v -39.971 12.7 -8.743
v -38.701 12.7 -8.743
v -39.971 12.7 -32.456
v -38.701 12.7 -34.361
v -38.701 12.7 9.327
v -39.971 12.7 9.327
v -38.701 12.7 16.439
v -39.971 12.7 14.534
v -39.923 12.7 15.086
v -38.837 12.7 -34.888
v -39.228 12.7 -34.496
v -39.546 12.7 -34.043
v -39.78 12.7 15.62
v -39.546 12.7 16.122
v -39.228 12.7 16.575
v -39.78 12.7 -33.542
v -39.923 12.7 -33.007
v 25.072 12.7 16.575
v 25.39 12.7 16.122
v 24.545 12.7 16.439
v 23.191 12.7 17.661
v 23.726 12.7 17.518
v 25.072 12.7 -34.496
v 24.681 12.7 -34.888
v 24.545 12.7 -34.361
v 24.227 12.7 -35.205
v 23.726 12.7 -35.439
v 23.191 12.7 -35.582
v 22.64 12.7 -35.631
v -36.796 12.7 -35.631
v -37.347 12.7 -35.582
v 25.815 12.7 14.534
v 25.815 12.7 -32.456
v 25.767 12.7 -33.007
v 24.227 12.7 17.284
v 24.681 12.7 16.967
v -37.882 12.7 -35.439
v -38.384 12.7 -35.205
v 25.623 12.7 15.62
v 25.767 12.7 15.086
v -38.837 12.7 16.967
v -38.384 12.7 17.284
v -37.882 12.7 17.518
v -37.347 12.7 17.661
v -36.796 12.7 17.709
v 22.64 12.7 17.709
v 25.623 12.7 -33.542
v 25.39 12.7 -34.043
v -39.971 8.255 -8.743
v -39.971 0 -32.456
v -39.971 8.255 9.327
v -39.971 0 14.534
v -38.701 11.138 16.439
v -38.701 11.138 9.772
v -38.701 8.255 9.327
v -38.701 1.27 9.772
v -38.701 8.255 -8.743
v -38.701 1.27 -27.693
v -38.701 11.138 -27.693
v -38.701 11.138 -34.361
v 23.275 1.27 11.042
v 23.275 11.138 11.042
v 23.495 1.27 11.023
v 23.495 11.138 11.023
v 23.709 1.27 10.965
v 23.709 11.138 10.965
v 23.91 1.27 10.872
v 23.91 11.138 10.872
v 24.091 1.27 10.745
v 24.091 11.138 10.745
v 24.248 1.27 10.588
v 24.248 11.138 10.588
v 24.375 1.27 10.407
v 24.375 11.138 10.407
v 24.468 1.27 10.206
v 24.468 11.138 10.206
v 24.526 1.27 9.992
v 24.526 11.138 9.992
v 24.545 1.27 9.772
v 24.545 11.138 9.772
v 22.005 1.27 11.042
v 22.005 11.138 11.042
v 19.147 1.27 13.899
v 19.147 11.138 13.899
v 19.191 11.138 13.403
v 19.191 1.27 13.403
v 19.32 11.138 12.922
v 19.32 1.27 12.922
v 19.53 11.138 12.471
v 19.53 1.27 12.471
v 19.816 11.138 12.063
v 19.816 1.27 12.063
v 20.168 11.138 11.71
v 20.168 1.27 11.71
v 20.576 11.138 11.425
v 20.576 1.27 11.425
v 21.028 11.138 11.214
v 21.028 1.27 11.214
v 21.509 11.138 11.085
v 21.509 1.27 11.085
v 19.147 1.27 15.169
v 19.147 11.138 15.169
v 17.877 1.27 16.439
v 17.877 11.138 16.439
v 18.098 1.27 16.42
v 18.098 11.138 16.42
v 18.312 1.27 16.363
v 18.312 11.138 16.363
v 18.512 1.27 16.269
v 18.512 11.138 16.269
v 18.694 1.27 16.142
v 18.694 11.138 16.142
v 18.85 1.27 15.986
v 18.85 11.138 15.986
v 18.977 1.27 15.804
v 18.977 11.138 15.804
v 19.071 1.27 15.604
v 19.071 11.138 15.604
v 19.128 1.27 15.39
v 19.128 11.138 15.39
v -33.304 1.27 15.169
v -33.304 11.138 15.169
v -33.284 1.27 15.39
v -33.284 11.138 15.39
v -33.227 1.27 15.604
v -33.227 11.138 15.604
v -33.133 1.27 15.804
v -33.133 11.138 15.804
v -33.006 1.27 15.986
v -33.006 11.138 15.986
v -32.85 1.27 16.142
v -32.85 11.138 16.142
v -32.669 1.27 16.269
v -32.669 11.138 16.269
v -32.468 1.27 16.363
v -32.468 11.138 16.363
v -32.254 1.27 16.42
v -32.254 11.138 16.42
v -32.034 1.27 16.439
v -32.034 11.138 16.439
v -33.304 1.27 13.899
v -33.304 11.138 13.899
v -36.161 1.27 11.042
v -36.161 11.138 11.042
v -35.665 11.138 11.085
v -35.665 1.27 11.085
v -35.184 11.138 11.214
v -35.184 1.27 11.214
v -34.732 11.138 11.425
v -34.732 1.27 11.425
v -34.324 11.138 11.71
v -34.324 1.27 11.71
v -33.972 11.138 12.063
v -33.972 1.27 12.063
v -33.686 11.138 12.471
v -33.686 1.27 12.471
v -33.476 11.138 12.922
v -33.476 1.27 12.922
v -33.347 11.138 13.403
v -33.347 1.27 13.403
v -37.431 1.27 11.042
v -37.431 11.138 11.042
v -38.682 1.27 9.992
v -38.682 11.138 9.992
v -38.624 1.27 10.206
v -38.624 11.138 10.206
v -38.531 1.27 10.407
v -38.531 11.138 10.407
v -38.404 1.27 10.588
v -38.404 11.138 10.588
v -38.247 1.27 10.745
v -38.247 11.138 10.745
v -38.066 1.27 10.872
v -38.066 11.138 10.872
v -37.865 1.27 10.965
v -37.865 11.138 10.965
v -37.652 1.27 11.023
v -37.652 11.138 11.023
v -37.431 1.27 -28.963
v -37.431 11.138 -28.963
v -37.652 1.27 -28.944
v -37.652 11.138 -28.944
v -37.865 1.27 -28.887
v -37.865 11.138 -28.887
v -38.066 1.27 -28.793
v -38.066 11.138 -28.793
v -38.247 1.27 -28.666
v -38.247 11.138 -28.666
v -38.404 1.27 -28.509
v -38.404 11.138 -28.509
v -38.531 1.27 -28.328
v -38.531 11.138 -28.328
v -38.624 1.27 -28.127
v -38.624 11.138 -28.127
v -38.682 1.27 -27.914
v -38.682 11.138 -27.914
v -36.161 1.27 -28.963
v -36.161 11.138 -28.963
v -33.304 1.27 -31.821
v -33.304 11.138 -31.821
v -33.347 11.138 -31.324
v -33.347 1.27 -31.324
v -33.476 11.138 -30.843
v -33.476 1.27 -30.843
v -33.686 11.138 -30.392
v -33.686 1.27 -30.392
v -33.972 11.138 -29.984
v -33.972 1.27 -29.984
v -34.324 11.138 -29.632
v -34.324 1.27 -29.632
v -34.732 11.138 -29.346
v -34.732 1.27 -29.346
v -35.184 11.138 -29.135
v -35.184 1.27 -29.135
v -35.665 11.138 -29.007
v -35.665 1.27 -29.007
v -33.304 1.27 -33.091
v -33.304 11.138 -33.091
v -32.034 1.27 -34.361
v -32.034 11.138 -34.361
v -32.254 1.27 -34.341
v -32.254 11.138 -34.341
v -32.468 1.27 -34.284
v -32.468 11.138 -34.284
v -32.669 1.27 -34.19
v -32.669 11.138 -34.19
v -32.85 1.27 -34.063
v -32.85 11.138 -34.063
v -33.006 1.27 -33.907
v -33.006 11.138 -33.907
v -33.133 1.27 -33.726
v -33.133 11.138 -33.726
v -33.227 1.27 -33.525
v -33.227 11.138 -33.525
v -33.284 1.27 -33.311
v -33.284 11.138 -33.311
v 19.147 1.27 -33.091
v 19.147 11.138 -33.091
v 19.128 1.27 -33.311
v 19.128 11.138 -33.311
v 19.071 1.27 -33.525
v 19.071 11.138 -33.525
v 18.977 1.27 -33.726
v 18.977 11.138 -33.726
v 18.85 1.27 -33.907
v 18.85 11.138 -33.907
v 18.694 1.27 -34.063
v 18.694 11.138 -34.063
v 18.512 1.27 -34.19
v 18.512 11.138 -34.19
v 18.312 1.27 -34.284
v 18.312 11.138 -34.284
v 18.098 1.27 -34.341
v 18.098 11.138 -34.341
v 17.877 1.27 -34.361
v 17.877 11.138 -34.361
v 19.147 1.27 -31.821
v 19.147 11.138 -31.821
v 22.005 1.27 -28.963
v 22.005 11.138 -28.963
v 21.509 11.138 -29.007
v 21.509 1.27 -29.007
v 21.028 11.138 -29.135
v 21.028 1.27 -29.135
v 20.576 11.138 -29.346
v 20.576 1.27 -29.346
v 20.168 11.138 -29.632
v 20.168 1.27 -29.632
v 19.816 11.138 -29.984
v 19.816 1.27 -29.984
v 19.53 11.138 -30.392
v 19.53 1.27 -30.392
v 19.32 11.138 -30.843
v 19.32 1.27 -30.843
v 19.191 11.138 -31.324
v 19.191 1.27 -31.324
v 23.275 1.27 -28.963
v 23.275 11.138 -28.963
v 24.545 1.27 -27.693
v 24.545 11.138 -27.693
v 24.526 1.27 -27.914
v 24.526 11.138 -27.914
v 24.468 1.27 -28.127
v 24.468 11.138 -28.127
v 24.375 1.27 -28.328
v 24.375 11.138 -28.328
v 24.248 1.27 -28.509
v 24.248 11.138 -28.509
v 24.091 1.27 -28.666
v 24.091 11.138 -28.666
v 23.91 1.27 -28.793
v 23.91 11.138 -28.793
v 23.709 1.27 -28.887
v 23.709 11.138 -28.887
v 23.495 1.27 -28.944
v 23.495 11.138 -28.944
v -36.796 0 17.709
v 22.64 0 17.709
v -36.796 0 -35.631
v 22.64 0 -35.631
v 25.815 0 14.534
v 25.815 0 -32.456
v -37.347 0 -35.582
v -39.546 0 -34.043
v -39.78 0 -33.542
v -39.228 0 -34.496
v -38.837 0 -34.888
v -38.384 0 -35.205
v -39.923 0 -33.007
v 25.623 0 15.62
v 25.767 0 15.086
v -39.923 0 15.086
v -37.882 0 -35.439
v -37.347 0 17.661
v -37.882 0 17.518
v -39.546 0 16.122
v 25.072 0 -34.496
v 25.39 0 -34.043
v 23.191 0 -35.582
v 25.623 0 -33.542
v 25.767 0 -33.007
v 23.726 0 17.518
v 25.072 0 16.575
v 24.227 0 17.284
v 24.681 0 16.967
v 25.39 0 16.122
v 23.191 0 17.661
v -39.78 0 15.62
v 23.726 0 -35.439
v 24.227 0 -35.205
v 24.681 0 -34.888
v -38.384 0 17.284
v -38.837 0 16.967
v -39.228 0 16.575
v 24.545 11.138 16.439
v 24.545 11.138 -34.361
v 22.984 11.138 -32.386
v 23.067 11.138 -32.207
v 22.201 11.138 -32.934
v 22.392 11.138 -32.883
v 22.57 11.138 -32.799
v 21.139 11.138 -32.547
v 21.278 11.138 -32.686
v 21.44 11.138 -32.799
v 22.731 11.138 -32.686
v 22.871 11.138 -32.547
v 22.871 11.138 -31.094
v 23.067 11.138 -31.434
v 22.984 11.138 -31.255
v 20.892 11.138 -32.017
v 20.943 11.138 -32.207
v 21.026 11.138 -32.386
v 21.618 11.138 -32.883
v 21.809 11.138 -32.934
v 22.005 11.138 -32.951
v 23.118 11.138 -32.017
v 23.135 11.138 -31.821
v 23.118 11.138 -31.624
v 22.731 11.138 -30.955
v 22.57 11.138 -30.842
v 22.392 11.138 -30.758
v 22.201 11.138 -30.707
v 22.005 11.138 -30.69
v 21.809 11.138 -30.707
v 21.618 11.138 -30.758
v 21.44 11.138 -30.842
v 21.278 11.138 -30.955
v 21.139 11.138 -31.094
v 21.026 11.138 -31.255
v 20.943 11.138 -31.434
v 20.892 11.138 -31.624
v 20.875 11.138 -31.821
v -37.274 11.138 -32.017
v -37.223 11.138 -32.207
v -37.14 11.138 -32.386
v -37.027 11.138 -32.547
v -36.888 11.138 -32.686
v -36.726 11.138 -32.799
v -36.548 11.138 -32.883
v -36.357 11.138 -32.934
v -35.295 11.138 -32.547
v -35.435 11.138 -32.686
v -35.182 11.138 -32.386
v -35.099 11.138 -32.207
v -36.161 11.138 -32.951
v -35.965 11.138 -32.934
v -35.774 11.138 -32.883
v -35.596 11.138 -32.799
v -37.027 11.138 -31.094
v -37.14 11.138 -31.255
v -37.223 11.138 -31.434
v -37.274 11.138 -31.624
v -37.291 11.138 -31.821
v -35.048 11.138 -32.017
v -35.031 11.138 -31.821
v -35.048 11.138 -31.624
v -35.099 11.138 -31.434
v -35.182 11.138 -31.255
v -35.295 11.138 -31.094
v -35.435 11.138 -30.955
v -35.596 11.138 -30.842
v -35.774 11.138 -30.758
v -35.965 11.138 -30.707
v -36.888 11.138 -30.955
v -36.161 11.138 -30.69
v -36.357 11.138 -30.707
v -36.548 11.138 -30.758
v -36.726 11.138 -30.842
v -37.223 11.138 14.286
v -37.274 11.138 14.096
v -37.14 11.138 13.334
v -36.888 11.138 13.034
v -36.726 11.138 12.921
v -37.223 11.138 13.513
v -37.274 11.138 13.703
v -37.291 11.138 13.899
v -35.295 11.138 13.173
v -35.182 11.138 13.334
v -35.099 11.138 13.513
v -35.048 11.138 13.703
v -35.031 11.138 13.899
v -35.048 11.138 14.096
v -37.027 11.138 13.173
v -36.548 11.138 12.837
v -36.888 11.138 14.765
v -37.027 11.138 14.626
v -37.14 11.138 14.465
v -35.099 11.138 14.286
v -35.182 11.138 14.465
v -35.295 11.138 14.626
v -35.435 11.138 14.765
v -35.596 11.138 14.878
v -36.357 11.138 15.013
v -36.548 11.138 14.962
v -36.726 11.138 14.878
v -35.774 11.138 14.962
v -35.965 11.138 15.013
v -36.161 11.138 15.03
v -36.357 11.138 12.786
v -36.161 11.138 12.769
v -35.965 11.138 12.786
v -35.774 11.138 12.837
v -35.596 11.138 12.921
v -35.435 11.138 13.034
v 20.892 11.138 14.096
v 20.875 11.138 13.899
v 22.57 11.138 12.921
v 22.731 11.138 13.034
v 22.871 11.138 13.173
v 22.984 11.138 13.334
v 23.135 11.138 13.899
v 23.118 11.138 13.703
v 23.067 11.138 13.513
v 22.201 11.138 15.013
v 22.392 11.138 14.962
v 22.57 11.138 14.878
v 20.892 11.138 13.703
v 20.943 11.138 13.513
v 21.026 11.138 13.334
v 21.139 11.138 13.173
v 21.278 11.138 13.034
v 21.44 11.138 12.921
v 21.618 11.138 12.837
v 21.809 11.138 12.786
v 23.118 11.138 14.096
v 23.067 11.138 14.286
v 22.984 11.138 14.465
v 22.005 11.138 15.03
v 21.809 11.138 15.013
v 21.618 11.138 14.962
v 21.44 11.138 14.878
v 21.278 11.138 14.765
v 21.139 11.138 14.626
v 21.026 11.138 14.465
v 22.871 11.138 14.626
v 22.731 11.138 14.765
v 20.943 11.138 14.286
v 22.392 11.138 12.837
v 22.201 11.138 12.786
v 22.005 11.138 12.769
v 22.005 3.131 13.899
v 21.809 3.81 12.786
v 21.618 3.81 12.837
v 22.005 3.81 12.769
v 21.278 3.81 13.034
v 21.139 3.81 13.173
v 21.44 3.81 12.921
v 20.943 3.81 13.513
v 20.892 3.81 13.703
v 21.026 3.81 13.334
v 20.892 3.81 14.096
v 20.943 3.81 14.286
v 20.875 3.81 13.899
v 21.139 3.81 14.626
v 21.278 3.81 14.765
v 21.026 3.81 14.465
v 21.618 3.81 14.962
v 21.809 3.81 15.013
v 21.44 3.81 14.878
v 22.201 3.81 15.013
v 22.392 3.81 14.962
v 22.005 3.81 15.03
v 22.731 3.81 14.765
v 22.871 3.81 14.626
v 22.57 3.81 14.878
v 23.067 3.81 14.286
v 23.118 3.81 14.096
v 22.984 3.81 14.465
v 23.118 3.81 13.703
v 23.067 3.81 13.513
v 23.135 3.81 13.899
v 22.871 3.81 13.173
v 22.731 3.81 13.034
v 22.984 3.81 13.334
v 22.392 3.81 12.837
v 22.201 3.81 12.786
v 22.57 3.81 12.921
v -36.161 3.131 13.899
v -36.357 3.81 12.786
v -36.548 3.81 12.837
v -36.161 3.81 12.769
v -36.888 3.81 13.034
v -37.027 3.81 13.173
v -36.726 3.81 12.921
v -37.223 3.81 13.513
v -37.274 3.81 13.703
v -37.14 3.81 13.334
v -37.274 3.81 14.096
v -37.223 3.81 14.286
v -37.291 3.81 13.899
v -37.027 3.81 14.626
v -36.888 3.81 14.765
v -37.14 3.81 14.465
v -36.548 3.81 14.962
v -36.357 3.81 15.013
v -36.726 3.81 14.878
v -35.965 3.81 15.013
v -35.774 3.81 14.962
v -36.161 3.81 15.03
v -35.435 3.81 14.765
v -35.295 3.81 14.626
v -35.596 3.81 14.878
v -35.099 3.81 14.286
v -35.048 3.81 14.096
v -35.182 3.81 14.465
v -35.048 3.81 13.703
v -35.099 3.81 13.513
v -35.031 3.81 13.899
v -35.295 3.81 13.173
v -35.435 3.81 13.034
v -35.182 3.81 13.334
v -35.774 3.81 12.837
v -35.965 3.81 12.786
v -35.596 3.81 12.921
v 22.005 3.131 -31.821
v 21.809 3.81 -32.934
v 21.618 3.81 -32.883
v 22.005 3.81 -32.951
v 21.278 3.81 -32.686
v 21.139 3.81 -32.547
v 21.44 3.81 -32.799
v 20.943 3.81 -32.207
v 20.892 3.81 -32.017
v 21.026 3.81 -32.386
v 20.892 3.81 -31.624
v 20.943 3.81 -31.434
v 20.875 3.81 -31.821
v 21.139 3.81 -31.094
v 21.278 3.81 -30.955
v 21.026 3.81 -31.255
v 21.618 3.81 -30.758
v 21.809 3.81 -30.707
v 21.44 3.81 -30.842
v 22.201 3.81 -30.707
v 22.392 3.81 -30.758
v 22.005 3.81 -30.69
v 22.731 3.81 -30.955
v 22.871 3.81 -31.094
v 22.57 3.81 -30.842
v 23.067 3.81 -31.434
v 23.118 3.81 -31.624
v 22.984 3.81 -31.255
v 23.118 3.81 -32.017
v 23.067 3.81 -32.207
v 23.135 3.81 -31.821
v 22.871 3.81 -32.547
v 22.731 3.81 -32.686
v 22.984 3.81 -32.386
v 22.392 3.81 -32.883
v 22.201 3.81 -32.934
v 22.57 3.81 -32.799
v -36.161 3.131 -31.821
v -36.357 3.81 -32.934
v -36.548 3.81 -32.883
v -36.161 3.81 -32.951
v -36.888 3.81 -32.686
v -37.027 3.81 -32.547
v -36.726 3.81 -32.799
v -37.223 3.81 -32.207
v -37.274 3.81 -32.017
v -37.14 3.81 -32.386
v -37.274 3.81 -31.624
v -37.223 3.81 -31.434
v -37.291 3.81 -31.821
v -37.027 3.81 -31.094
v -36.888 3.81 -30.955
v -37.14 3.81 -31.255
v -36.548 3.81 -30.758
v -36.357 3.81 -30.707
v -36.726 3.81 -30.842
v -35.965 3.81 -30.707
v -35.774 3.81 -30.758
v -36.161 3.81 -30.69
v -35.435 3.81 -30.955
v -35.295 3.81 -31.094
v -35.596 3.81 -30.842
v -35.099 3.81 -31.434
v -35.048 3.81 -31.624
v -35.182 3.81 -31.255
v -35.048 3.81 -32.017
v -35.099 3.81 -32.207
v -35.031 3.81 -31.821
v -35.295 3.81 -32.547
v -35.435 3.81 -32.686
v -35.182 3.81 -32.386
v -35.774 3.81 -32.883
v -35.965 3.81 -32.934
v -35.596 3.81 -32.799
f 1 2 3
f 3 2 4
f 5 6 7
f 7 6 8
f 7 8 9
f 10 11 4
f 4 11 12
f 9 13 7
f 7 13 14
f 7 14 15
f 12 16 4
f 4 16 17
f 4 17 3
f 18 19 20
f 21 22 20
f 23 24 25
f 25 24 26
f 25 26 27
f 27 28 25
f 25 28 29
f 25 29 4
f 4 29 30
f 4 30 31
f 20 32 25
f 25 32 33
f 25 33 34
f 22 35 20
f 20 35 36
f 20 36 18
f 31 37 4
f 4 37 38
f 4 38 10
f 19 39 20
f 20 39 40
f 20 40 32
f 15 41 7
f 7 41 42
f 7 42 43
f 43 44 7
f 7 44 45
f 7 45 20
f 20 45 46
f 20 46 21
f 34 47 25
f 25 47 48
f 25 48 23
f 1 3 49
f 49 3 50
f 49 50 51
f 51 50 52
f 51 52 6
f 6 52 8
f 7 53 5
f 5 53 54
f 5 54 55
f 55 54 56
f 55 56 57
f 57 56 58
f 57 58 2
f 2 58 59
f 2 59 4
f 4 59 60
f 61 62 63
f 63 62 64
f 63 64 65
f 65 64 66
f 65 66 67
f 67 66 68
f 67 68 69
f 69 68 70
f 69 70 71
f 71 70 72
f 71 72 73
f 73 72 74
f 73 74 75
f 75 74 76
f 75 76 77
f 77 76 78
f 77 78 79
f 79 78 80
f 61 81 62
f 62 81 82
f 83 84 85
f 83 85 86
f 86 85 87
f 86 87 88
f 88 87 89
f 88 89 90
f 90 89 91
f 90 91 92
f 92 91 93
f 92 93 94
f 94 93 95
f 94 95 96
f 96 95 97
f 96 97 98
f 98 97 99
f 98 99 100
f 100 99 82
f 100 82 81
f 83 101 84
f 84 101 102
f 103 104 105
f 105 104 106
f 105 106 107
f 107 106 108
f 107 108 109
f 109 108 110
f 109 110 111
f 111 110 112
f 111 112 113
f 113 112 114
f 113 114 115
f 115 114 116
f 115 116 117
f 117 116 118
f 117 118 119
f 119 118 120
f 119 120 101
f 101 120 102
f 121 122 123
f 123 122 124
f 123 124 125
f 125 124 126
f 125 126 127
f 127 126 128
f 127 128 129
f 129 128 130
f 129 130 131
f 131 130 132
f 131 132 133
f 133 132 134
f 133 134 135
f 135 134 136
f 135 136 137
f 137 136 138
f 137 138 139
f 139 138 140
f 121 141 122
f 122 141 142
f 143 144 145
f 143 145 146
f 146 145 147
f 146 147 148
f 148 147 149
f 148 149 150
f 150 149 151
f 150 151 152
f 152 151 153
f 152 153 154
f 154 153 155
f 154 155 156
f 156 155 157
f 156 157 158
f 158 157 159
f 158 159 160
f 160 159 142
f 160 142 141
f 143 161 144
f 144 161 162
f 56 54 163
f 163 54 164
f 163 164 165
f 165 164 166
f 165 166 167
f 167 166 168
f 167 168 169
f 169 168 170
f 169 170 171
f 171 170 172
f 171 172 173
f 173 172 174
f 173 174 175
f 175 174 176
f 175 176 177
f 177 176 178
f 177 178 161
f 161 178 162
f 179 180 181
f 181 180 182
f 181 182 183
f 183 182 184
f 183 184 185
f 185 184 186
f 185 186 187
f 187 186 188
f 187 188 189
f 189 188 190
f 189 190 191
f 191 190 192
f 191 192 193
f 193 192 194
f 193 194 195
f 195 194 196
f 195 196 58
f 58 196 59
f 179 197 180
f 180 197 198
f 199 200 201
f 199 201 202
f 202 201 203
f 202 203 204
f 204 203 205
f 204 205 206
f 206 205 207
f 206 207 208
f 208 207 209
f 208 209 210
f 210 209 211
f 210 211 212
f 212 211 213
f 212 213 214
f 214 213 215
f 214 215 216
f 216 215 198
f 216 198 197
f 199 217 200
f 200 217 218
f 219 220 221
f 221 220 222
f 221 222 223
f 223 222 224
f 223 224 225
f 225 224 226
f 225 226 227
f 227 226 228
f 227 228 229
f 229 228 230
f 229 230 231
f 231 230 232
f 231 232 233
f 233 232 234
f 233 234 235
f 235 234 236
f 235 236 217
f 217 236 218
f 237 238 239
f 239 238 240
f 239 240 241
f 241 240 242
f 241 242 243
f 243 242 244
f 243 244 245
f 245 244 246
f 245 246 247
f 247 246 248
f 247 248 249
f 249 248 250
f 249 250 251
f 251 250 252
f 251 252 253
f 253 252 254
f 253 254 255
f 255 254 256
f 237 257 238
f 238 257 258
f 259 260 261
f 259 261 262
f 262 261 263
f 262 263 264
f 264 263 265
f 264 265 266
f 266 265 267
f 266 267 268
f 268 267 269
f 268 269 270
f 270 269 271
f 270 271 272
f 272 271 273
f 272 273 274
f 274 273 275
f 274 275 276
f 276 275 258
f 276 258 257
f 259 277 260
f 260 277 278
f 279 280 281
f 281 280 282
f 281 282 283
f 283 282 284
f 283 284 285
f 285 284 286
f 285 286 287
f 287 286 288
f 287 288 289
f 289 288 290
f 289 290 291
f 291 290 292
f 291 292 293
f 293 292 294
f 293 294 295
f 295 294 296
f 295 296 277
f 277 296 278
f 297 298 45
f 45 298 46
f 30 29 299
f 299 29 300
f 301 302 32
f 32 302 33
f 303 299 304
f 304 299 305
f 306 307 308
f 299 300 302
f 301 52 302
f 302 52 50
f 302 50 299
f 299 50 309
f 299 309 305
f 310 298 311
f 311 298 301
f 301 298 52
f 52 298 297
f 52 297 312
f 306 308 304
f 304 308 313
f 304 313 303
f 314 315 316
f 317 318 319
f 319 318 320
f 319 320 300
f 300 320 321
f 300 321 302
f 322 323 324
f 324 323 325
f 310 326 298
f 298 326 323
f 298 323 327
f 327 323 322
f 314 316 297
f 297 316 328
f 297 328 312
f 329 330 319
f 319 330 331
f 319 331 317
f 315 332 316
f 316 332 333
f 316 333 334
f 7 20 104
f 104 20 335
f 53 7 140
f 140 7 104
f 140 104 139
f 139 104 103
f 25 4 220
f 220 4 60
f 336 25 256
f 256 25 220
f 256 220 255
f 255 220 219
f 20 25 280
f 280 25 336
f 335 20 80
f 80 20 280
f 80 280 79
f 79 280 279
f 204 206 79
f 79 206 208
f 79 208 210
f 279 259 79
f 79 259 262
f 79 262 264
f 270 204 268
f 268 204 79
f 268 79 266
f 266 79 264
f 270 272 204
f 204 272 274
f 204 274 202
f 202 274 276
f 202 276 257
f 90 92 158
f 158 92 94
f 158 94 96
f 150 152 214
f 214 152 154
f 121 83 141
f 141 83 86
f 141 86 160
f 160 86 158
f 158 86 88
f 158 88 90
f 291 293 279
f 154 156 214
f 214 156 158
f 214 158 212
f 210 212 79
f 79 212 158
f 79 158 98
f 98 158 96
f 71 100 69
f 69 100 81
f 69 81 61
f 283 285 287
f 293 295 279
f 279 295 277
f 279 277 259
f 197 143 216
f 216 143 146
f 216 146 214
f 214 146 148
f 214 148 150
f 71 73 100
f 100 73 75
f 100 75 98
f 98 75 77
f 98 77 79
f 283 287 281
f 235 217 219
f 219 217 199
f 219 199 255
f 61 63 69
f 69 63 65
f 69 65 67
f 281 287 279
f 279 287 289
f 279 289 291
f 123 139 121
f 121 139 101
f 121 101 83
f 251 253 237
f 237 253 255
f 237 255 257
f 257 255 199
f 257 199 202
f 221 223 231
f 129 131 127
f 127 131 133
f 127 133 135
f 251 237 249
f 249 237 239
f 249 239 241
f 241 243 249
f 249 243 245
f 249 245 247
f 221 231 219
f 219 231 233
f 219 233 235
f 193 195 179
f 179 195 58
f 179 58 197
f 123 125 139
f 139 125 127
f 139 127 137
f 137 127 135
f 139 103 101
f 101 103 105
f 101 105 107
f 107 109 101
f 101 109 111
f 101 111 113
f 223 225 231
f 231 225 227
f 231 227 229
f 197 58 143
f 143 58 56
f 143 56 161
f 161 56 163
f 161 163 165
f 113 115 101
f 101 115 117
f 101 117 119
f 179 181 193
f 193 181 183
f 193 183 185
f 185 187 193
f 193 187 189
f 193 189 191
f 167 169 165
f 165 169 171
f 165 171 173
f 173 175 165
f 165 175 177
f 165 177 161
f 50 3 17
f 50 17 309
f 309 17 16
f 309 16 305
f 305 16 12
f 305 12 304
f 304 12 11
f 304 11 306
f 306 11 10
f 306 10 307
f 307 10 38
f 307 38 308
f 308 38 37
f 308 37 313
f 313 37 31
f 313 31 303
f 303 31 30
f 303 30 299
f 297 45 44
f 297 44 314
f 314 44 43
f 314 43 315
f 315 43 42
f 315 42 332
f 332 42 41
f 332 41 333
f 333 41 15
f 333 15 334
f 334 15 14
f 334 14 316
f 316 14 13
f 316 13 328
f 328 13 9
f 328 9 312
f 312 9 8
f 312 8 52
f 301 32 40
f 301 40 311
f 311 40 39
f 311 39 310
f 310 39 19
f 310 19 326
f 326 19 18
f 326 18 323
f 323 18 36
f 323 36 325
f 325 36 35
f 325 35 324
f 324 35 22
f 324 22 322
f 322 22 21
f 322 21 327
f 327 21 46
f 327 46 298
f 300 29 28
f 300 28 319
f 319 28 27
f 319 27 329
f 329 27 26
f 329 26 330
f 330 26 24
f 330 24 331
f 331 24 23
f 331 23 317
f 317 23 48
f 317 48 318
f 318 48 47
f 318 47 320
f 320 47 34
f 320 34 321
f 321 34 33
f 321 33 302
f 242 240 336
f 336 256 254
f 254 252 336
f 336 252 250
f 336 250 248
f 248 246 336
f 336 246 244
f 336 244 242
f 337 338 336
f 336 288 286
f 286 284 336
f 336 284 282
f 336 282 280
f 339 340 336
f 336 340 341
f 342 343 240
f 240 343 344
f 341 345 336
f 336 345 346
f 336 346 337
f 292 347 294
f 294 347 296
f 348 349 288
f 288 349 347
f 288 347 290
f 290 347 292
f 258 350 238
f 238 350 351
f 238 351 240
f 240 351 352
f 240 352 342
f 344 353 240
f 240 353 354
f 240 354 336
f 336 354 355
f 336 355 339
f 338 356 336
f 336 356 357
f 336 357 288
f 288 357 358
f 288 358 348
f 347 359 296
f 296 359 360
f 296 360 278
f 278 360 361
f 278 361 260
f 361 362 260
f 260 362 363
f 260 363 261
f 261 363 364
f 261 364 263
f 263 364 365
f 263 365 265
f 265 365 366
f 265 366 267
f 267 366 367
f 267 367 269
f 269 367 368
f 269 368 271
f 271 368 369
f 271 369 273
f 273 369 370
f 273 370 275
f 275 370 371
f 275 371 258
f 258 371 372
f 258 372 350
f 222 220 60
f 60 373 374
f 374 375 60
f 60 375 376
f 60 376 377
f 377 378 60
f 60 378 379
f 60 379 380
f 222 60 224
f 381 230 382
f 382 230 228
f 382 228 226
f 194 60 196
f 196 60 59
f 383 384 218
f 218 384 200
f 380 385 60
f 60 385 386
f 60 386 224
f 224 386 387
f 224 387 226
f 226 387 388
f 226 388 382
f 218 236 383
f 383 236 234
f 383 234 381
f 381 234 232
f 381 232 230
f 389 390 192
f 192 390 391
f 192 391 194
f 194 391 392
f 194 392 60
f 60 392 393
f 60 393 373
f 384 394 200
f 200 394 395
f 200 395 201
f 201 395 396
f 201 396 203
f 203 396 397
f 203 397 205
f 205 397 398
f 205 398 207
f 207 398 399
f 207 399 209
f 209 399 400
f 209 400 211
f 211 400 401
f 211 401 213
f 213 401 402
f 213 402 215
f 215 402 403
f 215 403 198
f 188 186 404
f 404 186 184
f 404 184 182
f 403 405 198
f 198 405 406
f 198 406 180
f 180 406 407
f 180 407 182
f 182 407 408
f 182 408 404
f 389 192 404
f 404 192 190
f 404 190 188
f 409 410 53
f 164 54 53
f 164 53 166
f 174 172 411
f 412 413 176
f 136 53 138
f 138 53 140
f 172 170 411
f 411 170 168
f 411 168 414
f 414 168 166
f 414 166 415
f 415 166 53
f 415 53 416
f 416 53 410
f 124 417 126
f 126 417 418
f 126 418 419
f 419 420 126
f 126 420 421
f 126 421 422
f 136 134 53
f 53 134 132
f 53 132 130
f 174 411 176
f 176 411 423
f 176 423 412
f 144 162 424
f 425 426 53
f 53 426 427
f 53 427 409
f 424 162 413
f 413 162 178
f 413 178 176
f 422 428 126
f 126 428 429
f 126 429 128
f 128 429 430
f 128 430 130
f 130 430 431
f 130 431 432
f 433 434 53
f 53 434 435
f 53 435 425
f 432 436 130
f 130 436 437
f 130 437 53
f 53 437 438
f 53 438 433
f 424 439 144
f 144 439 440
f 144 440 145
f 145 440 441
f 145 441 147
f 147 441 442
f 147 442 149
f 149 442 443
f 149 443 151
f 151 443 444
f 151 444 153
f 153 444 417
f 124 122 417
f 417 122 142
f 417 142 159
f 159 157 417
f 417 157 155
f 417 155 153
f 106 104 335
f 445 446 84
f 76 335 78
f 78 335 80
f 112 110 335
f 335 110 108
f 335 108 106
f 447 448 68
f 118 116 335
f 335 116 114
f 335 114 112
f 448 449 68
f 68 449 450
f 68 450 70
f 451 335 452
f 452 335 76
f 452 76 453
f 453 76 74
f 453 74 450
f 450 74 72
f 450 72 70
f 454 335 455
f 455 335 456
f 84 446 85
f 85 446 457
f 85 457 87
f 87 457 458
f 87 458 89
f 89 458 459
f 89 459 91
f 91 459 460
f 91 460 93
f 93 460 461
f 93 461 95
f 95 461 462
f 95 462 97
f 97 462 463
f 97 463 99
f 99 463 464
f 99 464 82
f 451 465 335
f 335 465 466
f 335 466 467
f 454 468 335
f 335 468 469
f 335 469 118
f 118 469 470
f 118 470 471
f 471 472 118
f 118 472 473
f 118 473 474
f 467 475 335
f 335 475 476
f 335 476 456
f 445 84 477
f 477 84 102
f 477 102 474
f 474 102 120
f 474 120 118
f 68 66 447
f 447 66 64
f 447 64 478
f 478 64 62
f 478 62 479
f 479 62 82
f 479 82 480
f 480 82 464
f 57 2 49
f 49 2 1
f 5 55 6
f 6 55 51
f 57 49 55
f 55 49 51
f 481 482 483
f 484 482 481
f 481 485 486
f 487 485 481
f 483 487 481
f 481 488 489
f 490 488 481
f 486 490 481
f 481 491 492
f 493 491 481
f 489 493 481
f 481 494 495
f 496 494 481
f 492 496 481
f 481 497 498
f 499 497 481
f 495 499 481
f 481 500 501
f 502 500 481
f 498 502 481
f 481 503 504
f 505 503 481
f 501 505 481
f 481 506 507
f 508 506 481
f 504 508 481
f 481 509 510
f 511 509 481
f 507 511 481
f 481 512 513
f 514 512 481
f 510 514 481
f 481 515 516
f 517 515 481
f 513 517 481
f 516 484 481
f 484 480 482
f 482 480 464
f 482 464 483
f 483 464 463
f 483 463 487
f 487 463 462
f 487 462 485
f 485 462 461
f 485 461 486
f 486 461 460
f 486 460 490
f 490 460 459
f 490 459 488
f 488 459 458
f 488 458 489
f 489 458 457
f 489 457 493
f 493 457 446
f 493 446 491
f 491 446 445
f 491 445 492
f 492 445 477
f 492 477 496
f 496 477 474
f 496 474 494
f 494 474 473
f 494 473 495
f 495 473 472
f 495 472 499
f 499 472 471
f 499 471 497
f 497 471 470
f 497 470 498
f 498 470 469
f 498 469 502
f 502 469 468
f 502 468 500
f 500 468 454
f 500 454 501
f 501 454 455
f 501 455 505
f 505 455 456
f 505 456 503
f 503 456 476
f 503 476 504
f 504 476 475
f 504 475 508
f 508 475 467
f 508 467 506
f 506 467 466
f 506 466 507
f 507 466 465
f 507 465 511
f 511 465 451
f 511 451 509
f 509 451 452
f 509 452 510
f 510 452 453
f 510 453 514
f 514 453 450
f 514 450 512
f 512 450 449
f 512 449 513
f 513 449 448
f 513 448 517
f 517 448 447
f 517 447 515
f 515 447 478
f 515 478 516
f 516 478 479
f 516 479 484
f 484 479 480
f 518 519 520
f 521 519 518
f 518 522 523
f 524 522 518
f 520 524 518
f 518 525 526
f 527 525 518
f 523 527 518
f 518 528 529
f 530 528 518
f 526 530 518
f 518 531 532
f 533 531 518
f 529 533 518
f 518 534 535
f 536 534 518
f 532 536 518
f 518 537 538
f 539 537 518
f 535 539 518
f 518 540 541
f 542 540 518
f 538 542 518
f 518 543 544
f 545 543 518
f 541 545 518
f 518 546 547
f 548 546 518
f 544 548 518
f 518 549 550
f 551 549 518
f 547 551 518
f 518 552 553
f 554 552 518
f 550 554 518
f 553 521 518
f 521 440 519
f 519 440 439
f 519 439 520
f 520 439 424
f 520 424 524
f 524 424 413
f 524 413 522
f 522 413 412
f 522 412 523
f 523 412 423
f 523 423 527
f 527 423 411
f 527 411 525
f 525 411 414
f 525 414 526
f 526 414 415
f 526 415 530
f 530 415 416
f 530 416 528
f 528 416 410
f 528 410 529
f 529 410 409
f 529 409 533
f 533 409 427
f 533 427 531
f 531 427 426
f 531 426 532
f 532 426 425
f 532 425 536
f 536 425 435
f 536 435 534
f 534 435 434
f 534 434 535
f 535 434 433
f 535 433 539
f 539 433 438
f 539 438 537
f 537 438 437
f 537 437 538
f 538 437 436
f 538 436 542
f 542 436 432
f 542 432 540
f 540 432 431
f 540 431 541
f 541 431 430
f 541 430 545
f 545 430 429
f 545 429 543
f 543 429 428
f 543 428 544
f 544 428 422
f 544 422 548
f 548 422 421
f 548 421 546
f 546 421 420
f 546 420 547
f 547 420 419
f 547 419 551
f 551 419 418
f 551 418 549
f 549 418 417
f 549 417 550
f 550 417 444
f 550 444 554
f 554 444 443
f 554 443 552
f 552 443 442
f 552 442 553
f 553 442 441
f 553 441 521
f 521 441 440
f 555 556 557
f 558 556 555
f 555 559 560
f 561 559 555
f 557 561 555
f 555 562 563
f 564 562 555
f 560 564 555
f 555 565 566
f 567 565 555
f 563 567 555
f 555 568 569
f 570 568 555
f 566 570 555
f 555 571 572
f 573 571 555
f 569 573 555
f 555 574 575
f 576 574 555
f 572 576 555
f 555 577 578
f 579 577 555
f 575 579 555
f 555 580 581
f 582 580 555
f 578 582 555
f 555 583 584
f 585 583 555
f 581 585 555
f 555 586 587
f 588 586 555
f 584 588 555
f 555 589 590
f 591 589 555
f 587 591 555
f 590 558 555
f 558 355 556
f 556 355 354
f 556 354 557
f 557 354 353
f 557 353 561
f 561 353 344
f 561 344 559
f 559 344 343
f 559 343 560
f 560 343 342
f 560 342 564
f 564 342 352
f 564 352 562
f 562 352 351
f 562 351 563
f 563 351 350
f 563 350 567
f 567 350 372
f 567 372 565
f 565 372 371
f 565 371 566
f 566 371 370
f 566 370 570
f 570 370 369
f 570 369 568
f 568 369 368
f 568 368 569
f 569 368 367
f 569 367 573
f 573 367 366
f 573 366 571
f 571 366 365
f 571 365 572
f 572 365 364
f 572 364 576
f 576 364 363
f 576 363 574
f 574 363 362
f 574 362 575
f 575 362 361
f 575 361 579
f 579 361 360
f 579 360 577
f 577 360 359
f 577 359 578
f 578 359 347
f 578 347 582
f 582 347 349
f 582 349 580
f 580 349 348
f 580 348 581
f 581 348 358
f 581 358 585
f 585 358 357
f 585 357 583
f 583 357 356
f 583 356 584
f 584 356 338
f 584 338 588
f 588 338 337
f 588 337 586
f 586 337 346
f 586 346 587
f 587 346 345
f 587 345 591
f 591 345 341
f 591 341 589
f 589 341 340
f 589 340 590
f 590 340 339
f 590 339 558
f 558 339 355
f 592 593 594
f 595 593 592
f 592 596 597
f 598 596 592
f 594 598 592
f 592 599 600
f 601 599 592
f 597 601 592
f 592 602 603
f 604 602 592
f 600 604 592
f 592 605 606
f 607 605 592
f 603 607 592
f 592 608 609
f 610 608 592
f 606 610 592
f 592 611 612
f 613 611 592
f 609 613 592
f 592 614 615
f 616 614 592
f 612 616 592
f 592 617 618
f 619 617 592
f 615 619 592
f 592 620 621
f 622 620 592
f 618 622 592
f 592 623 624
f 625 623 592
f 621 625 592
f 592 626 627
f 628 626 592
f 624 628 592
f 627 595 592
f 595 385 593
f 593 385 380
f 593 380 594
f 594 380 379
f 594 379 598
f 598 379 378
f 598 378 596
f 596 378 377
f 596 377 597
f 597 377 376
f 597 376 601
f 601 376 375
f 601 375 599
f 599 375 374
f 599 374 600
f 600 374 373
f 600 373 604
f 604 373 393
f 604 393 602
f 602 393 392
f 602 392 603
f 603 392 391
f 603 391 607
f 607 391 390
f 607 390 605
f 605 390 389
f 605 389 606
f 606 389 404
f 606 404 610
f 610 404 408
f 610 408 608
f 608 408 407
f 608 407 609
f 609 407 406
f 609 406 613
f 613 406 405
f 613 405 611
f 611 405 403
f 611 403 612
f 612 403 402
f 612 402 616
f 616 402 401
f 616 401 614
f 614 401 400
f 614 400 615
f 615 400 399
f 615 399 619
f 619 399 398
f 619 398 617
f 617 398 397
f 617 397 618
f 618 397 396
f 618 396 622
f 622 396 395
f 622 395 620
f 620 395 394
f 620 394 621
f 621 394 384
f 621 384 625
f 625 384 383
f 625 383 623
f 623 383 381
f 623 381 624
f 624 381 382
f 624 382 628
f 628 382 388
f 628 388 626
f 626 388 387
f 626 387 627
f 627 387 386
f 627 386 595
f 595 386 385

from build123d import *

# Parameters (mm, degrees)
SKETCH5_W             = 65.786
SKETCH5_H             = 53.34
BOSS_EXTRUDE1_DEPTH   = 12.7
CUT_EXTRUDE1_DEPTH    = 11.43
FILLET1_R             = 3.175
SKETCH8_W             = 63.246
SKETCH8_H             = 50.8
CUT_EXTRUDE2_DEPTH    = 1.5621
SKETCH9_W             = 15.301638829
SKETCH9_H             = 18.07026672
CUT_EXTRUDE3_DEPTH    = 4.445
BODY_MOVE_COPY1_ANGLE = 180


with BuildPart() as part:
    # Sketch5 → Boss-Extrude1 (new body)
    with BuildSketch(Plane(origin=(0, 0, 0), x_dir=(1, 0, 0), z_dir=(0, 1, 0))):
        with Locations((-7.078072202, 8.960606498)):
            Rectangle(SKETCH5_W, SKETCH5_H)
    extrude(amount=BOSS_EXTRUDE1_DEPTH)

    # Sketch7 → Cut-Extrude1 (cut)
    with BuildSketch(Plane.XZ):
        with BuildLine():
            Line((-32.033572202, -34.360606498), (17.877427798, -34.360606498))
            ThreePointArc((17.877427798, -34.360606498), (18.77545341, -33.98863211), (19.147427798, -33.090606498))
            Line((19.147427798, -33.090606498), (19.147427798, -31.820606498))
            ThreePointArc((19.147427798, -31.820606498), (19.984370171, -29.800048871), (22.004927798, -28.963106498))
            Line((22.004927798, -28.963106498), (23.274927798, -28.963106498))
            ThreePointArc((23.274927798, -28.963106498), (24.17295341, -28.59113211), (24.544927798, -27.693106498))
            Line((24.544927798, -27.693106498), (24.544927798, 9.771893502))
            ThreePointArc((24.544927798, 9.771893502), (24.17295341, 10.669919114), (23.274927798, 11.041893502))
            Line((23.274927798, 11.041893502), (22.004927798, 11.041893502))
            ThreePointArc((22.004927798, 11.041893502), (19.984370171, 11.878835875), (19.147427798, 13.899393502))
            Line((19.147427798, 13.899393502), (19.147427798, 15.169393502))
            ThreePointArc((19.147427798, 15.169393502), (18.77545341, 16.067419114), (17.877427798, 16.439393502))
            Line((17.877427798, 16.439393502), (-32.033572202, 16.439393502))
            ThreePointArc((-32.033572202, 16.439393502), (-32.931597814, 16.067419114), (-33.303572202, 15.169393502))
            Line((-33.303572202, 15.169393502), (-33.303572202, 13.899393502))
            ThreePointArc((-33.303572202, 13.899393502), (-34.140514575, 11.878835875), (-36.161072202, 11.041893502))
            Line((-36.161072202, 11.041893502), (-37.431072202, 11.041893502))
            ThreePointArc((-37.431072202, 11.041893502), (-38.329097814, 10.669919114), (-38.701072202, 9.771893502))
            Line((-38.701072202, 9.771893502), (-38.701072202, -27.693106498))
            ThreePointArc((-38.701072202, -27.693106498), (-38.329097814, -28.59113211), (-37.431072202, -28.963106498))
            Line((-37.431072202, -28.963106498), (-36.161072202, -28.963106498))
            ThreePointArc((-36.161072202, -28.963106498), (-34.140514575, -29.800048871), (-33.303572202, -31.820606498))
            Line((-33.303572202, -31.820606498), (-33.303572202, -33.090606498))
            ThreePointArc((-33.303572202, -33.090606498), (-32.931597814, -33.98863211), (-32.033572202, -34.360606498))
        make_face()
    extrude(amount=-CUT_EXTRUDE1_DEPTH, mode=Mode.SUBTRACT)

    # Fillet1
    fillet1_edges = [part.edges().sort_by_distance(p)[0] for p in [
        (-39.971072202, 6.35, 17.709393502),
        (-39.971072202, 6.35, -35.630606498),
        (25.814927798, 6.35, -35.630606498),
        (25.814927798, 6.35, 17.709393502),
    ]]
    fillet(fillet1_edges, radius=FILLET1_R)

    # Sketch8 → Cut-Extrude2 (cut)
    with BuildSketch(Plane(origin=(0, 0, 0), x_dir=(1, 0, 0), z_dir=(0, 1, 0))):
        with Locations((-7.078072202, 8.960606498)):
            Rectangle(SKETCH8_W, SKETCH8_H)
    extrude(amount=CUT_EXTRUDE2_DEPTH, mode=Mode.SUBTRACT)

    # Sketch9 → Cut-Extrude3 (cut)
    with BuildSketch(Plane(origin=(0, 0, 0), x_dir=(1, 0, 0), z_dir=(0, 1, 0))):
        with Locations((26.561690875, -0.292260142)):
            Rectangle(SKETCH9_W, SKETCH9_H)
    extrude(amount=CUT_EXTRUDE3_DEPTH, mode=Mode.SUBTRACT)

    # Sketch10 → Tap Drill for #4-40 Tap1 (revolve, cut)
    with BuildSketch(Plane(origin=(-36.161072202, 0, 13.899393502), x_dir=(0, 0, -1), z_dir=(1, 0, 0))):
        Polygon((0, 0), (0, 9.569152758), (1.1303, 8.89), (1.1303, 0), align=None)
    tap_drill_for_4_40_tap1 = revolve(axis=Axis((-36.161072202, -6.35, 13.899393502), (0, 1, 0)), mode=Mode.SUBTRACT)

    # Mirror1: Tap Drill for #4-40 Tap1 across plane
    add(tap_drill_for_4_40_tap1.mirror(Plane(origin=(-7.078072202, 0, 0), x_dir=(0, 0, 1), z_dir=(1, 0, 0))), mode=Mode.SUBTRACT)

    # Mirror2: Tap Drill for #4-40 Tap1 across plane
    add(tap_drill_for_4_40_tap1.mirror(Plane.XY.offset(-8.960606498)), mode=Mode.SUBTRACT)

    # Mirror2 copy 1 sketch → Mirror2 copy 1 (revolve, cut)
    with BuildSketch(Plane(origin=(22.004927798, 0, -31.820606498), x_dir=(0, 0, 1), z_dir=(-1, 0, 0))):
        Polygon((0, 0), (0, 9.569152758), (1.1303, 8.89), (1.1303, 0), align=None)
    revolve(axis=Axis((22.004927798, -6.35, -31.820606498), (0, 1, 0)), mode=Mode.SUBTRACT)


with BuildPart() as part_1:
    # Body-Move/Copy1: moved
    add(part.part.rotate(Axis((-7.078072202, 6.35, 0), (0, 0, 1)), BODY_MOVE_COPY1_ANGLE))


solid = part_1.part
